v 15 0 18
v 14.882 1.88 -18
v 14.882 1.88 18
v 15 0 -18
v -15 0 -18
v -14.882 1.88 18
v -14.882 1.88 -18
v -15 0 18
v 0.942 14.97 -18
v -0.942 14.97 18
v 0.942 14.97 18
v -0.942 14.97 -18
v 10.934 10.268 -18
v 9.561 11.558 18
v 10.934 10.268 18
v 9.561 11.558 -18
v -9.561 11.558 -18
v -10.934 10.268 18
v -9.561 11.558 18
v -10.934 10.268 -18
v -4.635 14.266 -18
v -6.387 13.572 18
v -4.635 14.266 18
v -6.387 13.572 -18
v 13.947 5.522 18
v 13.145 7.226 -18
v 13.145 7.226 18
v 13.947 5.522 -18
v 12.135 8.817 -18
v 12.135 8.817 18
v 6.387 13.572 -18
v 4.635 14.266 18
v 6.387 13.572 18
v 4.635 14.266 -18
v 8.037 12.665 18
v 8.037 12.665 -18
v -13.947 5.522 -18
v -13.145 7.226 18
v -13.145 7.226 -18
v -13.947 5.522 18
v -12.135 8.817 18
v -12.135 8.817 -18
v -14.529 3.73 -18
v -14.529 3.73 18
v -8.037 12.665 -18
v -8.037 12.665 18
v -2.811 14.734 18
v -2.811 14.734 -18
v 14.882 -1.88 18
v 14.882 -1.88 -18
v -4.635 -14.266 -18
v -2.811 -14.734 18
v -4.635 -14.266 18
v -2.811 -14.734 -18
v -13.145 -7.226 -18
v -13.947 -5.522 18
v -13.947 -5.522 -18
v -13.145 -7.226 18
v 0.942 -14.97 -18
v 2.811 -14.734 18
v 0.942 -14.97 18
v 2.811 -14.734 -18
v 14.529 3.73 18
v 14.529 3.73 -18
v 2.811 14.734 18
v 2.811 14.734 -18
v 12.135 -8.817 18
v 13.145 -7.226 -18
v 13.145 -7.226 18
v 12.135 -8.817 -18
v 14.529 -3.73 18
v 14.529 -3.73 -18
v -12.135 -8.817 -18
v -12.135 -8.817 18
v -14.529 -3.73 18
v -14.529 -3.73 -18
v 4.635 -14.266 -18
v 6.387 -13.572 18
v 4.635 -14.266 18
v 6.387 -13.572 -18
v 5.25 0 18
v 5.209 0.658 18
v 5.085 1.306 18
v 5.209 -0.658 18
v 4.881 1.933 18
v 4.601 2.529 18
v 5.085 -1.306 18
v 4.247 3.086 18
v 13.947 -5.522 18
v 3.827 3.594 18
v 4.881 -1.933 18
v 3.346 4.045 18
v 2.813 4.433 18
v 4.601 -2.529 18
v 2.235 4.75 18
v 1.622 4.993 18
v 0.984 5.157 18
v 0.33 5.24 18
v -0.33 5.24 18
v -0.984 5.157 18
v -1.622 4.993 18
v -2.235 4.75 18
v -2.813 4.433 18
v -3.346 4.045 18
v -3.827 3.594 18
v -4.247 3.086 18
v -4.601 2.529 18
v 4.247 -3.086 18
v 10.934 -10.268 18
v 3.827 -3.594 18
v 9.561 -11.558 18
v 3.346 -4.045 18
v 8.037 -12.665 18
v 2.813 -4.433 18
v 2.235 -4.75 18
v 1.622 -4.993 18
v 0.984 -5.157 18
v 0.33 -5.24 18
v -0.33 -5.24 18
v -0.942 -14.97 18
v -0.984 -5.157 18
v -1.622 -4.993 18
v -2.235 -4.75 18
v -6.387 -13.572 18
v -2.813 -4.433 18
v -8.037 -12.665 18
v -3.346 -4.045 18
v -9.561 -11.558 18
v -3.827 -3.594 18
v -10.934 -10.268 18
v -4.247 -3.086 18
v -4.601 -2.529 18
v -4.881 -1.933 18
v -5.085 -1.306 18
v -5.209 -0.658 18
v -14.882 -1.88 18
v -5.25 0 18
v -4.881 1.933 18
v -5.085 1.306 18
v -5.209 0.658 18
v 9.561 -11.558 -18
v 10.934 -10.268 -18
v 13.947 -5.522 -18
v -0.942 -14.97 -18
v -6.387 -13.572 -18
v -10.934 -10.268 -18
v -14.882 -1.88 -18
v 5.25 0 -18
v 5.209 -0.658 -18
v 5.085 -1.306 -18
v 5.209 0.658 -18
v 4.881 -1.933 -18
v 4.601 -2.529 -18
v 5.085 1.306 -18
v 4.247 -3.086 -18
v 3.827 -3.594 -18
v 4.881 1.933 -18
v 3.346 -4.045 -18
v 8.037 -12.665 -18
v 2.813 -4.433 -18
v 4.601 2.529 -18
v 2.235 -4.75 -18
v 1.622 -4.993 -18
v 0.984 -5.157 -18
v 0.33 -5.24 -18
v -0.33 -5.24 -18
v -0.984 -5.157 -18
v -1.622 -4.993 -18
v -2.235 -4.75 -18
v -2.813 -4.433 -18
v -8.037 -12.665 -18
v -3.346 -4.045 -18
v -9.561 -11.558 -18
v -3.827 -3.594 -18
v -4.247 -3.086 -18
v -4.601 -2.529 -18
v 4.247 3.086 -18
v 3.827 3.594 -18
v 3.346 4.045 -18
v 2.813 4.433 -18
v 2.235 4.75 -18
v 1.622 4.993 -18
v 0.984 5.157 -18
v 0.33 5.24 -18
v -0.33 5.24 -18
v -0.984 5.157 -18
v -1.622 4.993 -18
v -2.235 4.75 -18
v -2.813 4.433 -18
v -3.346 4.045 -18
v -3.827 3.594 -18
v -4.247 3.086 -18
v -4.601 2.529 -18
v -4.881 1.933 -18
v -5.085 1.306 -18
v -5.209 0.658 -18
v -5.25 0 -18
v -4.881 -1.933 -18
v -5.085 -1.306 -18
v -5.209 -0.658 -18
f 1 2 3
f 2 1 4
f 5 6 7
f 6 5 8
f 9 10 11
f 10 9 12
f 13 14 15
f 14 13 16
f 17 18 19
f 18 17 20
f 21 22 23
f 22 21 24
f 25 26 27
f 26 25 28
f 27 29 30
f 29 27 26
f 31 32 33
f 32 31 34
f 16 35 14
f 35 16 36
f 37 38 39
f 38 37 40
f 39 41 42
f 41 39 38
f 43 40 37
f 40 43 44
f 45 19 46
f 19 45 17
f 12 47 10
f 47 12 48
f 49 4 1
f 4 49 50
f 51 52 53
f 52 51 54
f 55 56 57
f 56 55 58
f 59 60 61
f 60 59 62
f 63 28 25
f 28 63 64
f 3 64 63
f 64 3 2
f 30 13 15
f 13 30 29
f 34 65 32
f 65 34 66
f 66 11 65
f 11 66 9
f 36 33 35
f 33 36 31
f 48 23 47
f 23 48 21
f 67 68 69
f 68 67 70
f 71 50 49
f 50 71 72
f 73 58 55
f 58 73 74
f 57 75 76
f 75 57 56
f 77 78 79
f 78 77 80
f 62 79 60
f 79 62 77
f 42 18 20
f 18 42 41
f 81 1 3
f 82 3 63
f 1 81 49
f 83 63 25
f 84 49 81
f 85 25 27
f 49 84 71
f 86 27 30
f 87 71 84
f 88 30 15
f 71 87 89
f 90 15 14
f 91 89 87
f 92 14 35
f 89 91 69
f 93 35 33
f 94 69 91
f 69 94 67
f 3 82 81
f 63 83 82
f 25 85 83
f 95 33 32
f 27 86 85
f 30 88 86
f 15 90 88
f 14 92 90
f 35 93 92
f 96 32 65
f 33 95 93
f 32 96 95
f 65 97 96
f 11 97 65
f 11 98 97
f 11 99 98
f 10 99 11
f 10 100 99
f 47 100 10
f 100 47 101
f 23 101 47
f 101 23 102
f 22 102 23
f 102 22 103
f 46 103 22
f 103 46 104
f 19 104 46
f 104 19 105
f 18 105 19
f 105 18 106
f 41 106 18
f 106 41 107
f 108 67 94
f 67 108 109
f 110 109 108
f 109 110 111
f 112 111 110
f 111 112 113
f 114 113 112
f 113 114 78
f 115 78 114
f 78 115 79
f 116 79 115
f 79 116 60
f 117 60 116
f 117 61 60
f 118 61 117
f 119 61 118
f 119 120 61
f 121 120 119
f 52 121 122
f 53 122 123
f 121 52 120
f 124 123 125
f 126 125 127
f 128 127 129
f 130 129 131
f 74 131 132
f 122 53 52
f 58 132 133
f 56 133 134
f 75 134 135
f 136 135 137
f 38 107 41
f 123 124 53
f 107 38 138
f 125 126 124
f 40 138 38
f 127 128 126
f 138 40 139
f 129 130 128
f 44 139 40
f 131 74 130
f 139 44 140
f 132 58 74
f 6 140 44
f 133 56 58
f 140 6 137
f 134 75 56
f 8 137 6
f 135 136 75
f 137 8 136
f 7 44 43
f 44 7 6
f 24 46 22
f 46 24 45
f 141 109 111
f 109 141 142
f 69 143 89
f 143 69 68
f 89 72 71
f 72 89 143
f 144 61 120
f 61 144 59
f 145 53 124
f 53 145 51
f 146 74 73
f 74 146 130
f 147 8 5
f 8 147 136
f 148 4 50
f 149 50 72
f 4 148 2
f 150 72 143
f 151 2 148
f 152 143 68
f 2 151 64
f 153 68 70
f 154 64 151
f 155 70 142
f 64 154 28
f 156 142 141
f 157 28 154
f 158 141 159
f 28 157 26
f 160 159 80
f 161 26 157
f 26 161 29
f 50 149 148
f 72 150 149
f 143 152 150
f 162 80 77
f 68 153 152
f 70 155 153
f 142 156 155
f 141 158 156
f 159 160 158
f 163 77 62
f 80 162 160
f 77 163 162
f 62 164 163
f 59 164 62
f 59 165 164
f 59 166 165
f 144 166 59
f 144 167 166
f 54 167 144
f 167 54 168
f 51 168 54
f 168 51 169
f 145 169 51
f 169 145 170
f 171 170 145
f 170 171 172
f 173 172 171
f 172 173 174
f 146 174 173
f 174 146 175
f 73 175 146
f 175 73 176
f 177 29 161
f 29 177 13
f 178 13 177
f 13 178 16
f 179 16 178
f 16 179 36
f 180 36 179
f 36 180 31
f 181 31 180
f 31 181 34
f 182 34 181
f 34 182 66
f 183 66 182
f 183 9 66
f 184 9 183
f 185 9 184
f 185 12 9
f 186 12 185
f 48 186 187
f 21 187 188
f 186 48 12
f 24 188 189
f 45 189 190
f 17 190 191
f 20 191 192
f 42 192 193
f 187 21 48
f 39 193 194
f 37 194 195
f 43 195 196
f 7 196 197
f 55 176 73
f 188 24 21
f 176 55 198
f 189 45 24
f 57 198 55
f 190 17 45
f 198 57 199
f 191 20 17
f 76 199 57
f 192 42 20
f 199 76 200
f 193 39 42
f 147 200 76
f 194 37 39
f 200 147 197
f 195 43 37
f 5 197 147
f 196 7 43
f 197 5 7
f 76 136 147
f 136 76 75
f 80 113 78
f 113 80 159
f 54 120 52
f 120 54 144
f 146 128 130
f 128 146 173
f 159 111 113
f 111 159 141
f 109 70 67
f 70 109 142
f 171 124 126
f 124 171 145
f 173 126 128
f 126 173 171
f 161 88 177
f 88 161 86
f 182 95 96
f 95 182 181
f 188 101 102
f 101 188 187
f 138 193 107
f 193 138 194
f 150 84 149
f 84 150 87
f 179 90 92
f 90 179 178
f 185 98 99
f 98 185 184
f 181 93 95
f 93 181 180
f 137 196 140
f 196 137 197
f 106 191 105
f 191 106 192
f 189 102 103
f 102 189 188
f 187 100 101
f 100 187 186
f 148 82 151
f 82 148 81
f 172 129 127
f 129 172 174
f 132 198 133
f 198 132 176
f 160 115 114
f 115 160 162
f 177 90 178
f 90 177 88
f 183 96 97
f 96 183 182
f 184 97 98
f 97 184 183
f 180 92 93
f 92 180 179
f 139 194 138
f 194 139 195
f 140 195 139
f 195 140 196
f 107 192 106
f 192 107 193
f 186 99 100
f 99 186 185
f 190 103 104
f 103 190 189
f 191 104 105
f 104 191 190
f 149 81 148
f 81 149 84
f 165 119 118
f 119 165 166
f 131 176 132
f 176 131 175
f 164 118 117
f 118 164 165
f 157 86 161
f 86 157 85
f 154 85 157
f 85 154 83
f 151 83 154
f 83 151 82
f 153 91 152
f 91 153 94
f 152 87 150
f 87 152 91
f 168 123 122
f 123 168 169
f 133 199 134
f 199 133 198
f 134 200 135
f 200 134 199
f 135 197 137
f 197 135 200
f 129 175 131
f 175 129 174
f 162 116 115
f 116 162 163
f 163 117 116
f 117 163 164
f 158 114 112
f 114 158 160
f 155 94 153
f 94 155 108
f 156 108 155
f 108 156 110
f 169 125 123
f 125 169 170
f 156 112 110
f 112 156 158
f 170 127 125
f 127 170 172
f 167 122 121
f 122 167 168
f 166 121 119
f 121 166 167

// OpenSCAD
$fn = 50;


difference() {
	union() {
		translate(v = [0, 0, -18.0000000000]) {
			cylinder(h = 36, r = 15.0000000000);
		}
	}
	union() {
		translate(v = [0, 0, -100.0000000000]) {
			cylinder(h = 200, r = 5.2500000000);
		}
	}
}
